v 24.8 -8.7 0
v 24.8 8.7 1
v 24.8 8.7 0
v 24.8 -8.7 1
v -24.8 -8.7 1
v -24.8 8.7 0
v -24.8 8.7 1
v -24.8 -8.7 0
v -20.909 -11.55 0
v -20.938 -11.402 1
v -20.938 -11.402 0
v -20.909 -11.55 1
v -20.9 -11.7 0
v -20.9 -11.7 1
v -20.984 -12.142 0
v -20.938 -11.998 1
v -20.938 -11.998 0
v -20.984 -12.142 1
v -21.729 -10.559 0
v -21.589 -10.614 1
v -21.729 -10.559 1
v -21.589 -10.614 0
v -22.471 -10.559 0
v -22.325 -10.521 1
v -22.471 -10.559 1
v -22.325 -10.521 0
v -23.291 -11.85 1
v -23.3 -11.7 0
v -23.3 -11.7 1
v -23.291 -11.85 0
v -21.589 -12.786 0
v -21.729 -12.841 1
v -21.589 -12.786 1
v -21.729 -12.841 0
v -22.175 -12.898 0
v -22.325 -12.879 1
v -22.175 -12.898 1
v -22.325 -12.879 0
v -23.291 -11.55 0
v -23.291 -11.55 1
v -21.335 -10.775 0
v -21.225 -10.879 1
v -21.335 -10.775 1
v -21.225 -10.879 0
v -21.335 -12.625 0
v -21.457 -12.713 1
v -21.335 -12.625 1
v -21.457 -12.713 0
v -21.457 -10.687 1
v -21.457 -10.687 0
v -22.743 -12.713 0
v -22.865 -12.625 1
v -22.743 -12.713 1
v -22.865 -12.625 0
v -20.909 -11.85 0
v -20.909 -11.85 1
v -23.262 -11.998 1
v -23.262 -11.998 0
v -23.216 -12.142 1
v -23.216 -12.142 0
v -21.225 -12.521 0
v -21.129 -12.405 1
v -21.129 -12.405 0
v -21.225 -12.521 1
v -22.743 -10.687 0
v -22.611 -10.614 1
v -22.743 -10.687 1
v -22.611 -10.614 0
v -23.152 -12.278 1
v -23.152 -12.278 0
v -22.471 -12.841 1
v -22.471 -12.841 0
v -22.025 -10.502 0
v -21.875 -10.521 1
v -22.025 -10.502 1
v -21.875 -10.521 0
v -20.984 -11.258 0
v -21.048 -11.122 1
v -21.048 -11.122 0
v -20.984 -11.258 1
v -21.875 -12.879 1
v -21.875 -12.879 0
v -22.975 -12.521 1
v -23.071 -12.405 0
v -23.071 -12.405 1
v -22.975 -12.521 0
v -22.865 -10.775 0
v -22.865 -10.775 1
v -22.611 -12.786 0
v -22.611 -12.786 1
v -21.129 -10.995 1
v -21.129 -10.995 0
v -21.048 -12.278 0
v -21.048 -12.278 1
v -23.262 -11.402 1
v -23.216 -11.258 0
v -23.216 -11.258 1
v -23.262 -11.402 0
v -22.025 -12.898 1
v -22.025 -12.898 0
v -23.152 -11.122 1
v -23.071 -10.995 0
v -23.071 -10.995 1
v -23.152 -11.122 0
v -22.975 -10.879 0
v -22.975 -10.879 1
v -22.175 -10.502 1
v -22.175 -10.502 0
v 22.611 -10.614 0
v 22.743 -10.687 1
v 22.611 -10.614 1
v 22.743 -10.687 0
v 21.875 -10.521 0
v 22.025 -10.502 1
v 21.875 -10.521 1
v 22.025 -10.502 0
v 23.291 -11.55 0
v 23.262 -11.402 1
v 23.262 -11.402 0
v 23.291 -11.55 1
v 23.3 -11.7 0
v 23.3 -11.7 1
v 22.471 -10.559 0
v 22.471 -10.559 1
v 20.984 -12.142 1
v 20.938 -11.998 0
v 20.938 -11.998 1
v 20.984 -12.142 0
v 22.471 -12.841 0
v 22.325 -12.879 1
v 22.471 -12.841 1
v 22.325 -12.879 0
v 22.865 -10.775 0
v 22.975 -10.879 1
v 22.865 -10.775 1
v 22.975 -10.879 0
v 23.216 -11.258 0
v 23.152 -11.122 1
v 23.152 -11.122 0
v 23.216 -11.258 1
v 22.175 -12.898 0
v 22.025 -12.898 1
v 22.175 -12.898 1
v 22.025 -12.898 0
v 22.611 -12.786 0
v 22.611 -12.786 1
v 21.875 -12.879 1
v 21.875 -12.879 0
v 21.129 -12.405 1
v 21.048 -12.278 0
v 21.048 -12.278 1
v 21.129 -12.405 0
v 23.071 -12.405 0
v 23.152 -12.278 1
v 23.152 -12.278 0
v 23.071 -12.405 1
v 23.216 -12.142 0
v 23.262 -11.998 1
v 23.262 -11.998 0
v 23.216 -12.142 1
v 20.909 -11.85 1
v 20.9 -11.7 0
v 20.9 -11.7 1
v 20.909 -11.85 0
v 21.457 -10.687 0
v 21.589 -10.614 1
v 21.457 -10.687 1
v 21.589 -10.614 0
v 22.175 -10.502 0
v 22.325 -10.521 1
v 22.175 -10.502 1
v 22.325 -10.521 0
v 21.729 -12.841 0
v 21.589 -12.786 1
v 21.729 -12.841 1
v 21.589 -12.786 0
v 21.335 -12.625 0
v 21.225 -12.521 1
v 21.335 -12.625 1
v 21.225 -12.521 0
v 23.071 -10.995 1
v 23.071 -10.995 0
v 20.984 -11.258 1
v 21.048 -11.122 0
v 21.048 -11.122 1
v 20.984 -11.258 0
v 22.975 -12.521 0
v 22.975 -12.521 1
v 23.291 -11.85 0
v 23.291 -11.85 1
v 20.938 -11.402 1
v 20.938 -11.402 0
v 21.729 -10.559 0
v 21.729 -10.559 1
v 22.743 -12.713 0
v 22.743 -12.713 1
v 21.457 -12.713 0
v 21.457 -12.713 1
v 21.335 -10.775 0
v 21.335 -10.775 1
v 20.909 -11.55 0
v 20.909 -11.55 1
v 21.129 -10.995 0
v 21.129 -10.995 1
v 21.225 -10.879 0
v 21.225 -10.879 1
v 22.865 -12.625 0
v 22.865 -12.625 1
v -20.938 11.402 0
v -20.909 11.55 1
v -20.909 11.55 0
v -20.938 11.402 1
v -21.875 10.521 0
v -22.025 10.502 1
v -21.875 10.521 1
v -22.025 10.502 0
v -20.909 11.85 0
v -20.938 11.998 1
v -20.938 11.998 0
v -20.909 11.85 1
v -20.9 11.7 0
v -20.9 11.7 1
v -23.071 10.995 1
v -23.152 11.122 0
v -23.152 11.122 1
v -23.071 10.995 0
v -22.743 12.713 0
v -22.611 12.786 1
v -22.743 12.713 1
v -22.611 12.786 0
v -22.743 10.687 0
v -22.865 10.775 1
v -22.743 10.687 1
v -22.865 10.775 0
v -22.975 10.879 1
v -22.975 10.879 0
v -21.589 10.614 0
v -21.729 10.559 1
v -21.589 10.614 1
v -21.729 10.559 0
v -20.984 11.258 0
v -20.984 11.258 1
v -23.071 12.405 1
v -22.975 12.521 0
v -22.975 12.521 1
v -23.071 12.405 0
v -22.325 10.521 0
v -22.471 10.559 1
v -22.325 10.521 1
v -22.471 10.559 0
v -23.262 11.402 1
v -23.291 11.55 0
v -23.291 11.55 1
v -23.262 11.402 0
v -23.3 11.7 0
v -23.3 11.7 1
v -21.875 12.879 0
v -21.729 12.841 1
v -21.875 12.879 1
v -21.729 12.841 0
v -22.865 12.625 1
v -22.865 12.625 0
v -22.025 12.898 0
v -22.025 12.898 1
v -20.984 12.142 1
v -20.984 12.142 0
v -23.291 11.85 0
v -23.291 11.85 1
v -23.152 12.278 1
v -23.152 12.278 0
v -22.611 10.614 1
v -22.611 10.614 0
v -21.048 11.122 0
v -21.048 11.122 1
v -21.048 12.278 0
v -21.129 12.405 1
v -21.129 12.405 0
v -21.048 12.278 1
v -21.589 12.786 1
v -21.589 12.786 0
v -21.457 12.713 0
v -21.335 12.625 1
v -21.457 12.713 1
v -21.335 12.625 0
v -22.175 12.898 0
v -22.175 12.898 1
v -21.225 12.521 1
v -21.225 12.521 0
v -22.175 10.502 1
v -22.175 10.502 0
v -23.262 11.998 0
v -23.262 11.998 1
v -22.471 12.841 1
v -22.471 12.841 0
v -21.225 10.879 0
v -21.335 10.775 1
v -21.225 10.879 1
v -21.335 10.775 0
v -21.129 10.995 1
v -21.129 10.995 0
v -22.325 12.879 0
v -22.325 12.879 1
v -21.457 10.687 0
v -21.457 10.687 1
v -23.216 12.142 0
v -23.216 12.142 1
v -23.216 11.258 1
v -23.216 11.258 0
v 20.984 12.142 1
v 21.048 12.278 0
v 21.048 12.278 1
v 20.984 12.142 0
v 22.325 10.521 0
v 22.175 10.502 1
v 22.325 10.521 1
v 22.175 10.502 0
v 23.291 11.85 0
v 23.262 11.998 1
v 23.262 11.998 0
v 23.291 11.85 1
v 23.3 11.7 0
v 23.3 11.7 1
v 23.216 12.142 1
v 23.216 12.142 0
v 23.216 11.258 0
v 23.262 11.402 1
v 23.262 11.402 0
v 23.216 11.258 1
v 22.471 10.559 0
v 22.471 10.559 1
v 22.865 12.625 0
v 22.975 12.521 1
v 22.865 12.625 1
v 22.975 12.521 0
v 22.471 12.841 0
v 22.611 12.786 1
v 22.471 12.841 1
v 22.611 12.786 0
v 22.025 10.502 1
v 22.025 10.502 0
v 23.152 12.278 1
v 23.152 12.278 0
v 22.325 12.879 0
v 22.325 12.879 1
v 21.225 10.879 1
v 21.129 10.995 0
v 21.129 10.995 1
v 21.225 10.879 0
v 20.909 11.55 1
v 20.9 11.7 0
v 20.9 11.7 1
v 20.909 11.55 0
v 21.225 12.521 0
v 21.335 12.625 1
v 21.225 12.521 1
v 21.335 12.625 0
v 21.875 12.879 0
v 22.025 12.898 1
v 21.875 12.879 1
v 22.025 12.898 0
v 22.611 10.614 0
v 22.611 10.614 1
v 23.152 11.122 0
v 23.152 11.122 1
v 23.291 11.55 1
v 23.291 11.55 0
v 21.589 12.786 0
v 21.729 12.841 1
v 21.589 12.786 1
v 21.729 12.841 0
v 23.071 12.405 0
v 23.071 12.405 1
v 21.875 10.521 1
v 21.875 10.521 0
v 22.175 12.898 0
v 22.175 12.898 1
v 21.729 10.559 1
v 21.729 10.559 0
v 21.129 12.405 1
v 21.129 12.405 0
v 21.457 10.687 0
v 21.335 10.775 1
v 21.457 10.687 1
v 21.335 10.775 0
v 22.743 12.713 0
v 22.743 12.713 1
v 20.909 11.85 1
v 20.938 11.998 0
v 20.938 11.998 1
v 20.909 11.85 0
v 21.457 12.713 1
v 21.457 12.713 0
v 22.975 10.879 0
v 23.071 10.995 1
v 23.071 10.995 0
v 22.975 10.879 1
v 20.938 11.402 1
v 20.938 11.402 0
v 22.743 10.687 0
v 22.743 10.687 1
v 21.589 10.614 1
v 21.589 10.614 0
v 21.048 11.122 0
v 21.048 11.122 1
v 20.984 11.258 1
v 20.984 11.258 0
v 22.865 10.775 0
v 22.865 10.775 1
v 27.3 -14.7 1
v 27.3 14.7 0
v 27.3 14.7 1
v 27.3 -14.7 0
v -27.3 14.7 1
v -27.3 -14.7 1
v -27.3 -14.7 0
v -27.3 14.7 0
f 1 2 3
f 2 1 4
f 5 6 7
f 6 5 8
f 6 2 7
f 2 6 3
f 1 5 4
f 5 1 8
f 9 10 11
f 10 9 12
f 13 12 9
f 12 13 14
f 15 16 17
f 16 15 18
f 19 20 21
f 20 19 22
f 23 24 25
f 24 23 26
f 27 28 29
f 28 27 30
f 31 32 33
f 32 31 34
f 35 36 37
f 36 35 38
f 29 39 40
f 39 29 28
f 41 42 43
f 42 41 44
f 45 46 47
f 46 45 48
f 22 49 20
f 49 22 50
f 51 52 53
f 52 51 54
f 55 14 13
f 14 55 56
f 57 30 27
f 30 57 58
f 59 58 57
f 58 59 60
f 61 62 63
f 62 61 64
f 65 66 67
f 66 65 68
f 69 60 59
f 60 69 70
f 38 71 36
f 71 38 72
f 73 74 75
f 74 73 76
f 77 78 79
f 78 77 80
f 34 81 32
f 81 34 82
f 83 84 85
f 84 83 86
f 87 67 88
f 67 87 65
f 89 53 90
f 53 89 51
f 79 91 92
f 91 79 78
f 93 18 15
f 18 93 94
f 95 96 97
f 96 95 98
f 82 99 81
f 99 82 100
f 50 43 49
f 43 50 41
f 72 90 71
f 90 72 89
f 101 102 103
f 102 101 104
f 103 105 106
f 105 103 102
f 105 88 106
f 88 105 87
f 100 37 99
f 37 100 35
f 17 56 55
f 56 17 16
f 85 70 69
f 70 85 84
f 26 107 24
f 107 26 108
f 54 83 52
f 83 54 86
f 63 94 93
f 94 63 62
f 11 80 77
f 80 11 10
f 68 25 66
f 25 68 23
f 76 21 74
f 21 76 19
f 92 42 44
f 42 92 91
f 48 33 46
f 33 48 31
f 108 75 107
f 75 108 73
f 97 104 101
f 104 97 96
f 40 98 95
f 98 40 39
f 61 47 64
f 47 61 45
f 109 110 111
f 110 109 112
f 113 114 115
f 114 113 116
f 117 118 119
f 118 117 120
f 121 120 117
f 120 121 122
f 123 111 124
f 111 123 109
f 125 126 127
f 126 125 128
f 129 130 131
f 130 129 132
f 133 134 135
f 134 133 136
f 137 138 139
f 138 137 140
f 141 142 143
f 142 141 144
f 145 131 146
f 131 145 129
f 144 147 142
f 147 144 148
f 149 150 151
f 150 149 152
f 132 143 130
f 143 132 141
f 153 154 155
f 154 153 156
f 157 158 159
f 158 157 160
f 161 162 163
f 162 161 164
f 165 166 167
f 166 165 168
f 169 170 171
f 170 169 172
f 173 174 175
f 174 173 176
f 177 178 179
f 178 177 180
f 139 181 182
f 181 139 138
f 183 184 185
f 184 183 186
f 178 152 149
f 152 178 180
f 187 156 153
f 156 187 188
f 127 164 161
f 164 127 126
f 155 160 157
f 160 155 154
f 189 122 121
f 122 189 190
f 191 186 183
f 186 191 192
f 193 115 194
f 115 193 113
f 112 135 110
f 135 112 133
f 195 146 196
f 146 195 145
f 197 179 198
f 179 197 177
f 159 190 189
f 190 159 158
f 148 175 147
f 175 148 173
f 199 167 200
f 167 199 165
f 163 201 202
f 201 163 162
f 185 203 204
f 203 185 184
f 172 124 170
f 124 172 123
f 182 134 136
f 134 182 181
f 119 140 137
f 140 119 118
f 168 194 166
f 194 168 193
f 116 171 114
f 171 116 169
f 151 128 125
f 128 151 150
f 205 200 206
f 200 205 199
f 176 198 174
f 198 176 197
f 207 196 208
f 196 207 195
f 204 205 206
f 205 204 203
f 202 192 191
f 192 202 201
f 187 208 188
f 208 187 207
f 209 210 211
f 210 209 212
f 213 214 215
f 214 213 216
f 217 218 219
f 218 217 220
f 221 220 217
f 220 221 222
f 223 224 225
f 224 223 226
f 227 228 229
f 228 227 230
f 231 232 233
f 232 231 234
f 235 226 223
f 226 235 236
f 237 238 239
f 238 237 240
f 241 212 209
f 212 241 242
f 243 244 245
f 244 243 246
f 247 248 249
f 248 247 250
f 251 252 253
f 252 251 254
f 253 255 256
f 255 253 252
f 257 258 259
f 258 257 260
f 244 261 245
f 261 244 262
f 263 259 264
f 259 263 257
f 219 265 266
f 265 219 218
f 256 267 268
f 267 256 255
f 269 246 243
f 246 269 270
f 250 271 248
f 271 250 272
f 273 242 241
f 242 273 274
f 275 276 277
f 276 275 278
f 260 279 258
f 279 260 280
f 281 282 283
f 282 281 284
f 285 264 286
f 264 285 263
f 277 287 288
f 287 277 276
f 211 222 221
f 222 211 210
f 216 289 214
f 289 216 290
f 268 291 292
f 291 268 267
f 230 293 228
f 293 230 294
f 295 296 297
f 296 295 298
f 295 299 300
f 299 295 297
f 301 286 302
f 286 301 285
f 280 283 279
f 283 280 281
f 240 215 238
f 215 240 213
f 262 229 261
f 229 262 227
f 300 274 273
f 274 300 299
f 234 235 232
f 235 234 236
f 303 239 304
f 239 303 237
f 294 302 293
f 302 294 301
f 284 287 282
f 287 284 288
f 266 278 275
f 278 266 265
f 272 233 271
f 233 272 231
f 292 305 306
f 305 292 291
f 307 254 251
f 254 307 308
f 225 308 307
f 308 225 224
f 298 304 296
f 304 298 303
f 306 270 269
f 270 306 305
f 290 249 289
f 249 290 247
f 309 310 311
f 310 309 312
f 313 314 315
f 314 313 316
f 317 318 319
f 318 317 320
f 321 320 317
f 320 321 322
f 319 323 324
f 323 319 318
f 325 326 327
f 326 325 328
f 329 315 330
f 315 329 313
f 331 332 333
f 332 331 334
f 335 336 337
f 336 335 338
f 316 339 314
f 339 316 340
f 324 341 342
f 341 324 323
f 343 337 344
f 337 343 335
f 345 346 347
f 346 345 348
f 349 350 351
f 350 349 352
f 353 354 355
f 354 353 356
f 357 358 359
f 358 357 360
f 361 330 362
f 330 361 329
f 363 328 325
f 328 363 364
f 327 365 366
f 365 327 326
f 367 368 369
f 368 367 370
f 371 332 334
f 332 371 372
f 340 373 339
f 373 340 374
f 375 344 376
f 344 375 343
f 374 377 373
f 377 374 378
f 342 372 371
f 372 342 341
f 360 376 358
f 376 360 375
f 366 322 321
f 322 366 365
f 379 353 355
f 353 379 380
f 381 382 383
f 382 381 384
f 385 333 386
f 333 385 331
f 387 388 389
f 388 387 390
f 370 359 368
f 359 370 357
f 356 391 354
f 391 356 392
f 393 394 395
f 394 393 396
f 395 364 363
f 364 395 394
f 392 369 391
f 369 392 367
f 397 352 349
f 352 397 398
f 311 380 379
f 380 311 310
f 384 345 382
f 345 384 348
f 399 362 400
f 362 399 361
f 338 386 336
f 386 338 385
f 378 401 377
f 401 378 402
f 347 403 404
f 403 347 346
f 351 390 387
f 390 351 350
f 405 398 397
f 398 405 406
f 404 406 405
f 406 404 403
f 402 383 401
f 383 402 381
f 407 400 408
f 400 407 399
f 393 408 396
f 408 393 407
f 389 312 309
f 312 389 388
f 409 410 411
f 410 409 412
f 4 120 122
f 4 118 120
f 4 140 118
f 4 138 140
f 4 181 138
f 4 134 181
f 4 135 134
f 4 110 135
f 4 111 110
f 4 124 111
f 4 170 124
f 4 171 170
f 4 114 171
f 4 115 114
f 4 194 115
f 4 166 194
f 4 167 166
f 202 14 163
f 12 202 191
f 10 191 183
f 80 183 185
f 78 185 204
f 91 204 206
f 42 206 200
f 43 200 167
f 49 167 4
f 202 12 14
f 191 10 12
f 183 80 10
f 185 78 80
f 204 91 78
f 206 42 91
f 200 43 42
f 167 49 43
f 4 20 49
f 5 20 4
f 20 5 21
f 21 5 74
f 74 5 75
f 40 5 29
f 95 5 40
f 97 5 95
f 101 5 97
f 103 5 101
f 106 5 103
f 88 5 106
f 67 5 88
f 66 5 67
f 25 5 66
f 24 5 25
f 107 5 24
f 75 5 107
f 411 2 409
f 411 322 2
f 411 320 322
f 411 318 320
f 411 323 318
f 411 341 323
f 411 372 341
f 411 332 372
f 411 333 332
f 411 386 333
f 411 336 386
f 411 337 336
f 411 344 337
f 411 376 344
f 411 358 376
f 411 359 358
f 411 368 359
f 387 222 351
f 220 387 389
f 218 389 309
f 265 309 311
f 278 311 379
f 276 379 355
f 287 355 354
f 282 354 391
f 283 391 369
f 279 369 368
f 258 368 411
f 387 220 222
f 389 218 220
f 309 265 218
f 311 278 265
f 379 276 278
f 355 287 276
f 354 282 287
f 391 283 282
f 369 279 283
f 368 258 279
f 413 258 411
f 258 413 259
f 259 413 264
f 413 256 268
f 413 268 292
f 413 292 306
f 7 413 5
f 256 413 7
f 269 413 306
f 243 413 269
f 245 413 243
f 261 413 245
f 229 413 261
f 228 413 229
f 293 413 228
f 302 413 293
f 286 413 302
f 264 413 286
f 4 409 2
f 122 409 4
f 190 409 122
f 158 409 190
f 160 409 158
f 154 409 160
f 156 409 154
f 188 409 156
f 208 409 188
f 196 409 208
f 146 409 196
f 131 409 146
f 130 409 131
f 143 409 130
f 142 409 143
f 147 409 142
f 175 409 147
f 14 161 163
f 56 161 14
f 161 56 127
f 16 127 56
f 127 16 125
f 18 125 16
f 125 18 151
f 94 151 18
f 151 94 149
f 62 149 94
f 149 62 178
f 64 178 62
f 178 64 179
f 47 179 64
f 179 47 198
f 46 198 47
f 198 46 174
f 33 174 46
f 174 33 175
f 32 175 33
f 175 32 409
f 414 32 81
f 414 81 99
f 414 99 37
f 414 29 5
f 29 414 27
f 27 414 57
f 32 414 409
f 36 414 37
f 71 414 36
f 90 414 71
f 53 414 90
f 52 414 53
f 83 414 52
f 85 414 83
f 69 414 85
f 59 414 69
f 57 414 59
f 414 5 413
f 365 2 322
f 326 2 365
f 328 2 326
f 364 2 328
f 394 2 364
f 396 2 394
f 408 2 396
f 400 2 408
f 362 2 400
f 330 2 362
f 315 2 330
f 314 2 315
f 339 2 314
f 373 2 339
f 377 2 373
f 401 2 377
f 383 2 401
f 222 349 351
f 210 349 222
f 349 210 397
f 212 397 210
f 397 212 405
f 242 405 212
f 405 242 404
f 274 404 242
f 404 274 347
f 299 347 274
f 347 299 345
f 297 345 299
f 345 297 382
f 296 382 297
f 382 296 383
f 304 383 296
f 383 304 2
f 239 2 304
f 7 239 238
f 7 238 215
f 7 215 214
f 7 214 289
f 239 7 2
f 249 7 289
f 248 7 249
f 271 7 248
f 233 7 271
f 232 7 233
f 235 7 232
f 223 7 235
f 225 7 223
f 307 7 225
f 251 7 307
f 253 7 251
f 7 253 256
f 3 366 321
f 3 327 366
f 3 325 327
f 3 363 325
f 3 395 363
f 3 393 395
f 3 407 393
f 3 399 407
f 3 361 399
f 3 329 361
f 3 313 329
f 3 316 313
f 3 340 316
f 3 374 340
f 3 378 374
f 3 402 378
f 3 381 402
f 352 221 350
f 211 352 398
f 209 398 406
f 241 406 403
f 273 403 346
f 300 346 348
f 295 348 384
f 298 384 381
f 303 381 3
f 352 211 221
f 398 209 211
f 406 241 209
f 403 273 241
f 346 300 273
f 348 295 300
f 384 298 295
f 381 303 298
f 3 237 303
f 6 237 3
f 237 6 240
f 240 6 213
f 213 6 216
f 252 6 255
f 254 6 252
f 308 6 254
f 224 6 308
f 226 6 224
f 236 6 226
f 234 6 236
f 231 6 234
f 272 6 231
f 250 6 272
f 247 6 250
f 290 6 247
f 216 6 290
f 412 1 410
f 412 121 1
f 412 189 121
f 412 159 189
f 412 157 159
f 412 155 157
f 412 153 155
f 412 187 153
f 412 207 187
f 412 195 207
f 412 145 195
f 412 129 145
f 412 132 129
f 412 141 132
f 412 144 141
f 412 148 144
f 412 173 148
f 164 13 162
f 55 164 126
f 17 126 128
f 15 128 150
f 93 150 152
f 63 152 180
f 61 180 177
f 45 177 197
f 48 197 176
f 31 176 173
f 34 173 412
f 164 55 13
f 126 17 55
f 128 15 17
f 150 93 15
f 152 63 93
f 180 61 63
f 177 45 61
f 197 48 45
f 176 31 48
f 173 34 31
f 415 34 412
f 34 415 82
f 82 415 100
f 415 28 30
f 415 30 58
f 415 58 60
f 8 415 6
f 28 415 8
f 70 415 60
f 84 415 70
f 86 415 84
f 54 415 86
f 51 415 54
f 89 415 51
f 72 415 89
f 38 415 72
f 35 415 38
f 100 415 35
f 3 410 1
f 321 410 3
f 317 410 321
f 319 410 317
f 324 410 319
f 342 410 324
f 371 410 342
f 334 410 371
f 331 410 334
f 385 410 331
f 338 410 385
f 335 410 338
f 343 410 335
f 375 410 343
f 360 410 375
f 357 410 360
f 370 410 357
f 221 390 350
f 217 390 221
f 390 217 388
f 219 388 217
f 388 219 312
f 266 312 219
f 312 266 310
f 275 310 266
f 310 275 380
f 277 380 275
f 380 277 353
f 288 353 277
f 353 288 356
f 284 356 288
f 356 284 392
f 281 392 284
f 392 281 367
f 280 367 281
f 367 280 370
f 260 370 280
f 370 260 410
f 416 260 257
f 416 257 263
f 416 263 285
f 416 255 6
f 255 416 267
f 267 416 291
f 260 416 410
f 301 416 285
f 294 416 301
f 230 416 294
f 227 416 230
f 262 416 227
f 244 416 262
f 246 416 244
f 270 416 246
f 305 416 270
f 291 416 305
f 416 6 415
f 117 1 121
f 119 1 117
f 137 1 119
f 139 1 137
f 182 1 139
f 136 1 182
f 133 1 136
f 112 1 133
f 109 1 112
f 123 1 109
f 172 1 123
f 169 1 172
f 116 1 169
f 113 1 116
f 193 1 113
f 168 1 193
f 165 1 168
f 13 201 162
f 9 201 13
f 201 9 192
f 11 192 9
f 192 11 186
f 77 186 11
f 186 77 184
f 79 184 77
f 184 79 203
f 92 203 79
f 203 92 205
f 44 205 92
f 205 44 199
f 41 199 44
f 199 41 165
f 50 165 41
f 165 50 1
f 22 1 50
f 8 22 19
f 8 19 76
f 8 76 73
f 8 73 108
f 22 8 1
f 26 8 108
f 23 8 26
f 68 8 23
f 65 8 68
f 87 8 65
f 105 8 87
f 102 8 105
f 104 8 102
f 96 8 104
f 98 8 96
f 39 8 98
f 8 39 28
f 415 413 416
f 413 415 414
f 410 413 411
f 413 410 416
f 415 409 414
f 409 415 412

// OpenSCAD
/* [Hidden] */
$fn = 100;

// Seven seg
seven_seg_width = 50.6;
seven_seg_length = 19.4;
seven_seg_x = -seven_seg_width/2;
seven_seg_y = -seven_seg_length/2;

panel_width = seven_seg_width + 4;
panel_length = seven_seg_length + 10;
panel_thickness = 1.0;


module panel() {
    translate([-panel_width/2, -panel_length/2, 0])
    cube([panel_width, panel_length, panel_thickness]);
}

module seven_segment_cutout() {
    screwDiameter = 2.4;
    xScrewOffset = -3.2;
    yTopScrewOffset = 2.0;
    yBottomScrewOffset = 2.0;
    h_overlap = 1.0;
    v_overlap = 2.0;

    color("Green") {
        translate([seven_seg_x + h_overlap/2, seven_seg_y + v_overlap/2, -panel_thickness/2]) {
            cube([seven_seg_width - h_overlap, seven_seg_length - v_overlap, panel_thickness*2]);
        }

        // top left
        translate([seven_seg_x - xScrewOffset, seven_seg_y - yBottomScrewOffset, -panel_thickness/2]) {
            cylinder(d=screwDiameter, panel_thickness*2, $fn=50);
        }

        // top right
        translate([seven_seg_x + seven_seg_width + xScrewOffset, seven_seg_y - yBottomScrewOffset, -panel_thickness/2]) {
            cylinder(d=screwDiameter, panel_thickness*2, $fn=50);
        }

        // top left
        translate([seven_seg_x - xScrewOffset, seven_seg_y + seven_seg_length + yTopScrewOffset, -panel_thickness/2]) {
            cylinder(d=screwDiameter, panel_thickness*2, $fn=50);
        }

        // top right
        translate([seven_seg_x + seven_seg_width + xScrewOffset, seven_seg_y + seven_seg_length + yTopScrewOffset, -panel_thickness/2]) {
            cylinder(d=screwDiameter, panel_thickness*2, $fn=50);
        }
    }    
}

difference()
{
    panel();
    seven_segment_cutout();

}
